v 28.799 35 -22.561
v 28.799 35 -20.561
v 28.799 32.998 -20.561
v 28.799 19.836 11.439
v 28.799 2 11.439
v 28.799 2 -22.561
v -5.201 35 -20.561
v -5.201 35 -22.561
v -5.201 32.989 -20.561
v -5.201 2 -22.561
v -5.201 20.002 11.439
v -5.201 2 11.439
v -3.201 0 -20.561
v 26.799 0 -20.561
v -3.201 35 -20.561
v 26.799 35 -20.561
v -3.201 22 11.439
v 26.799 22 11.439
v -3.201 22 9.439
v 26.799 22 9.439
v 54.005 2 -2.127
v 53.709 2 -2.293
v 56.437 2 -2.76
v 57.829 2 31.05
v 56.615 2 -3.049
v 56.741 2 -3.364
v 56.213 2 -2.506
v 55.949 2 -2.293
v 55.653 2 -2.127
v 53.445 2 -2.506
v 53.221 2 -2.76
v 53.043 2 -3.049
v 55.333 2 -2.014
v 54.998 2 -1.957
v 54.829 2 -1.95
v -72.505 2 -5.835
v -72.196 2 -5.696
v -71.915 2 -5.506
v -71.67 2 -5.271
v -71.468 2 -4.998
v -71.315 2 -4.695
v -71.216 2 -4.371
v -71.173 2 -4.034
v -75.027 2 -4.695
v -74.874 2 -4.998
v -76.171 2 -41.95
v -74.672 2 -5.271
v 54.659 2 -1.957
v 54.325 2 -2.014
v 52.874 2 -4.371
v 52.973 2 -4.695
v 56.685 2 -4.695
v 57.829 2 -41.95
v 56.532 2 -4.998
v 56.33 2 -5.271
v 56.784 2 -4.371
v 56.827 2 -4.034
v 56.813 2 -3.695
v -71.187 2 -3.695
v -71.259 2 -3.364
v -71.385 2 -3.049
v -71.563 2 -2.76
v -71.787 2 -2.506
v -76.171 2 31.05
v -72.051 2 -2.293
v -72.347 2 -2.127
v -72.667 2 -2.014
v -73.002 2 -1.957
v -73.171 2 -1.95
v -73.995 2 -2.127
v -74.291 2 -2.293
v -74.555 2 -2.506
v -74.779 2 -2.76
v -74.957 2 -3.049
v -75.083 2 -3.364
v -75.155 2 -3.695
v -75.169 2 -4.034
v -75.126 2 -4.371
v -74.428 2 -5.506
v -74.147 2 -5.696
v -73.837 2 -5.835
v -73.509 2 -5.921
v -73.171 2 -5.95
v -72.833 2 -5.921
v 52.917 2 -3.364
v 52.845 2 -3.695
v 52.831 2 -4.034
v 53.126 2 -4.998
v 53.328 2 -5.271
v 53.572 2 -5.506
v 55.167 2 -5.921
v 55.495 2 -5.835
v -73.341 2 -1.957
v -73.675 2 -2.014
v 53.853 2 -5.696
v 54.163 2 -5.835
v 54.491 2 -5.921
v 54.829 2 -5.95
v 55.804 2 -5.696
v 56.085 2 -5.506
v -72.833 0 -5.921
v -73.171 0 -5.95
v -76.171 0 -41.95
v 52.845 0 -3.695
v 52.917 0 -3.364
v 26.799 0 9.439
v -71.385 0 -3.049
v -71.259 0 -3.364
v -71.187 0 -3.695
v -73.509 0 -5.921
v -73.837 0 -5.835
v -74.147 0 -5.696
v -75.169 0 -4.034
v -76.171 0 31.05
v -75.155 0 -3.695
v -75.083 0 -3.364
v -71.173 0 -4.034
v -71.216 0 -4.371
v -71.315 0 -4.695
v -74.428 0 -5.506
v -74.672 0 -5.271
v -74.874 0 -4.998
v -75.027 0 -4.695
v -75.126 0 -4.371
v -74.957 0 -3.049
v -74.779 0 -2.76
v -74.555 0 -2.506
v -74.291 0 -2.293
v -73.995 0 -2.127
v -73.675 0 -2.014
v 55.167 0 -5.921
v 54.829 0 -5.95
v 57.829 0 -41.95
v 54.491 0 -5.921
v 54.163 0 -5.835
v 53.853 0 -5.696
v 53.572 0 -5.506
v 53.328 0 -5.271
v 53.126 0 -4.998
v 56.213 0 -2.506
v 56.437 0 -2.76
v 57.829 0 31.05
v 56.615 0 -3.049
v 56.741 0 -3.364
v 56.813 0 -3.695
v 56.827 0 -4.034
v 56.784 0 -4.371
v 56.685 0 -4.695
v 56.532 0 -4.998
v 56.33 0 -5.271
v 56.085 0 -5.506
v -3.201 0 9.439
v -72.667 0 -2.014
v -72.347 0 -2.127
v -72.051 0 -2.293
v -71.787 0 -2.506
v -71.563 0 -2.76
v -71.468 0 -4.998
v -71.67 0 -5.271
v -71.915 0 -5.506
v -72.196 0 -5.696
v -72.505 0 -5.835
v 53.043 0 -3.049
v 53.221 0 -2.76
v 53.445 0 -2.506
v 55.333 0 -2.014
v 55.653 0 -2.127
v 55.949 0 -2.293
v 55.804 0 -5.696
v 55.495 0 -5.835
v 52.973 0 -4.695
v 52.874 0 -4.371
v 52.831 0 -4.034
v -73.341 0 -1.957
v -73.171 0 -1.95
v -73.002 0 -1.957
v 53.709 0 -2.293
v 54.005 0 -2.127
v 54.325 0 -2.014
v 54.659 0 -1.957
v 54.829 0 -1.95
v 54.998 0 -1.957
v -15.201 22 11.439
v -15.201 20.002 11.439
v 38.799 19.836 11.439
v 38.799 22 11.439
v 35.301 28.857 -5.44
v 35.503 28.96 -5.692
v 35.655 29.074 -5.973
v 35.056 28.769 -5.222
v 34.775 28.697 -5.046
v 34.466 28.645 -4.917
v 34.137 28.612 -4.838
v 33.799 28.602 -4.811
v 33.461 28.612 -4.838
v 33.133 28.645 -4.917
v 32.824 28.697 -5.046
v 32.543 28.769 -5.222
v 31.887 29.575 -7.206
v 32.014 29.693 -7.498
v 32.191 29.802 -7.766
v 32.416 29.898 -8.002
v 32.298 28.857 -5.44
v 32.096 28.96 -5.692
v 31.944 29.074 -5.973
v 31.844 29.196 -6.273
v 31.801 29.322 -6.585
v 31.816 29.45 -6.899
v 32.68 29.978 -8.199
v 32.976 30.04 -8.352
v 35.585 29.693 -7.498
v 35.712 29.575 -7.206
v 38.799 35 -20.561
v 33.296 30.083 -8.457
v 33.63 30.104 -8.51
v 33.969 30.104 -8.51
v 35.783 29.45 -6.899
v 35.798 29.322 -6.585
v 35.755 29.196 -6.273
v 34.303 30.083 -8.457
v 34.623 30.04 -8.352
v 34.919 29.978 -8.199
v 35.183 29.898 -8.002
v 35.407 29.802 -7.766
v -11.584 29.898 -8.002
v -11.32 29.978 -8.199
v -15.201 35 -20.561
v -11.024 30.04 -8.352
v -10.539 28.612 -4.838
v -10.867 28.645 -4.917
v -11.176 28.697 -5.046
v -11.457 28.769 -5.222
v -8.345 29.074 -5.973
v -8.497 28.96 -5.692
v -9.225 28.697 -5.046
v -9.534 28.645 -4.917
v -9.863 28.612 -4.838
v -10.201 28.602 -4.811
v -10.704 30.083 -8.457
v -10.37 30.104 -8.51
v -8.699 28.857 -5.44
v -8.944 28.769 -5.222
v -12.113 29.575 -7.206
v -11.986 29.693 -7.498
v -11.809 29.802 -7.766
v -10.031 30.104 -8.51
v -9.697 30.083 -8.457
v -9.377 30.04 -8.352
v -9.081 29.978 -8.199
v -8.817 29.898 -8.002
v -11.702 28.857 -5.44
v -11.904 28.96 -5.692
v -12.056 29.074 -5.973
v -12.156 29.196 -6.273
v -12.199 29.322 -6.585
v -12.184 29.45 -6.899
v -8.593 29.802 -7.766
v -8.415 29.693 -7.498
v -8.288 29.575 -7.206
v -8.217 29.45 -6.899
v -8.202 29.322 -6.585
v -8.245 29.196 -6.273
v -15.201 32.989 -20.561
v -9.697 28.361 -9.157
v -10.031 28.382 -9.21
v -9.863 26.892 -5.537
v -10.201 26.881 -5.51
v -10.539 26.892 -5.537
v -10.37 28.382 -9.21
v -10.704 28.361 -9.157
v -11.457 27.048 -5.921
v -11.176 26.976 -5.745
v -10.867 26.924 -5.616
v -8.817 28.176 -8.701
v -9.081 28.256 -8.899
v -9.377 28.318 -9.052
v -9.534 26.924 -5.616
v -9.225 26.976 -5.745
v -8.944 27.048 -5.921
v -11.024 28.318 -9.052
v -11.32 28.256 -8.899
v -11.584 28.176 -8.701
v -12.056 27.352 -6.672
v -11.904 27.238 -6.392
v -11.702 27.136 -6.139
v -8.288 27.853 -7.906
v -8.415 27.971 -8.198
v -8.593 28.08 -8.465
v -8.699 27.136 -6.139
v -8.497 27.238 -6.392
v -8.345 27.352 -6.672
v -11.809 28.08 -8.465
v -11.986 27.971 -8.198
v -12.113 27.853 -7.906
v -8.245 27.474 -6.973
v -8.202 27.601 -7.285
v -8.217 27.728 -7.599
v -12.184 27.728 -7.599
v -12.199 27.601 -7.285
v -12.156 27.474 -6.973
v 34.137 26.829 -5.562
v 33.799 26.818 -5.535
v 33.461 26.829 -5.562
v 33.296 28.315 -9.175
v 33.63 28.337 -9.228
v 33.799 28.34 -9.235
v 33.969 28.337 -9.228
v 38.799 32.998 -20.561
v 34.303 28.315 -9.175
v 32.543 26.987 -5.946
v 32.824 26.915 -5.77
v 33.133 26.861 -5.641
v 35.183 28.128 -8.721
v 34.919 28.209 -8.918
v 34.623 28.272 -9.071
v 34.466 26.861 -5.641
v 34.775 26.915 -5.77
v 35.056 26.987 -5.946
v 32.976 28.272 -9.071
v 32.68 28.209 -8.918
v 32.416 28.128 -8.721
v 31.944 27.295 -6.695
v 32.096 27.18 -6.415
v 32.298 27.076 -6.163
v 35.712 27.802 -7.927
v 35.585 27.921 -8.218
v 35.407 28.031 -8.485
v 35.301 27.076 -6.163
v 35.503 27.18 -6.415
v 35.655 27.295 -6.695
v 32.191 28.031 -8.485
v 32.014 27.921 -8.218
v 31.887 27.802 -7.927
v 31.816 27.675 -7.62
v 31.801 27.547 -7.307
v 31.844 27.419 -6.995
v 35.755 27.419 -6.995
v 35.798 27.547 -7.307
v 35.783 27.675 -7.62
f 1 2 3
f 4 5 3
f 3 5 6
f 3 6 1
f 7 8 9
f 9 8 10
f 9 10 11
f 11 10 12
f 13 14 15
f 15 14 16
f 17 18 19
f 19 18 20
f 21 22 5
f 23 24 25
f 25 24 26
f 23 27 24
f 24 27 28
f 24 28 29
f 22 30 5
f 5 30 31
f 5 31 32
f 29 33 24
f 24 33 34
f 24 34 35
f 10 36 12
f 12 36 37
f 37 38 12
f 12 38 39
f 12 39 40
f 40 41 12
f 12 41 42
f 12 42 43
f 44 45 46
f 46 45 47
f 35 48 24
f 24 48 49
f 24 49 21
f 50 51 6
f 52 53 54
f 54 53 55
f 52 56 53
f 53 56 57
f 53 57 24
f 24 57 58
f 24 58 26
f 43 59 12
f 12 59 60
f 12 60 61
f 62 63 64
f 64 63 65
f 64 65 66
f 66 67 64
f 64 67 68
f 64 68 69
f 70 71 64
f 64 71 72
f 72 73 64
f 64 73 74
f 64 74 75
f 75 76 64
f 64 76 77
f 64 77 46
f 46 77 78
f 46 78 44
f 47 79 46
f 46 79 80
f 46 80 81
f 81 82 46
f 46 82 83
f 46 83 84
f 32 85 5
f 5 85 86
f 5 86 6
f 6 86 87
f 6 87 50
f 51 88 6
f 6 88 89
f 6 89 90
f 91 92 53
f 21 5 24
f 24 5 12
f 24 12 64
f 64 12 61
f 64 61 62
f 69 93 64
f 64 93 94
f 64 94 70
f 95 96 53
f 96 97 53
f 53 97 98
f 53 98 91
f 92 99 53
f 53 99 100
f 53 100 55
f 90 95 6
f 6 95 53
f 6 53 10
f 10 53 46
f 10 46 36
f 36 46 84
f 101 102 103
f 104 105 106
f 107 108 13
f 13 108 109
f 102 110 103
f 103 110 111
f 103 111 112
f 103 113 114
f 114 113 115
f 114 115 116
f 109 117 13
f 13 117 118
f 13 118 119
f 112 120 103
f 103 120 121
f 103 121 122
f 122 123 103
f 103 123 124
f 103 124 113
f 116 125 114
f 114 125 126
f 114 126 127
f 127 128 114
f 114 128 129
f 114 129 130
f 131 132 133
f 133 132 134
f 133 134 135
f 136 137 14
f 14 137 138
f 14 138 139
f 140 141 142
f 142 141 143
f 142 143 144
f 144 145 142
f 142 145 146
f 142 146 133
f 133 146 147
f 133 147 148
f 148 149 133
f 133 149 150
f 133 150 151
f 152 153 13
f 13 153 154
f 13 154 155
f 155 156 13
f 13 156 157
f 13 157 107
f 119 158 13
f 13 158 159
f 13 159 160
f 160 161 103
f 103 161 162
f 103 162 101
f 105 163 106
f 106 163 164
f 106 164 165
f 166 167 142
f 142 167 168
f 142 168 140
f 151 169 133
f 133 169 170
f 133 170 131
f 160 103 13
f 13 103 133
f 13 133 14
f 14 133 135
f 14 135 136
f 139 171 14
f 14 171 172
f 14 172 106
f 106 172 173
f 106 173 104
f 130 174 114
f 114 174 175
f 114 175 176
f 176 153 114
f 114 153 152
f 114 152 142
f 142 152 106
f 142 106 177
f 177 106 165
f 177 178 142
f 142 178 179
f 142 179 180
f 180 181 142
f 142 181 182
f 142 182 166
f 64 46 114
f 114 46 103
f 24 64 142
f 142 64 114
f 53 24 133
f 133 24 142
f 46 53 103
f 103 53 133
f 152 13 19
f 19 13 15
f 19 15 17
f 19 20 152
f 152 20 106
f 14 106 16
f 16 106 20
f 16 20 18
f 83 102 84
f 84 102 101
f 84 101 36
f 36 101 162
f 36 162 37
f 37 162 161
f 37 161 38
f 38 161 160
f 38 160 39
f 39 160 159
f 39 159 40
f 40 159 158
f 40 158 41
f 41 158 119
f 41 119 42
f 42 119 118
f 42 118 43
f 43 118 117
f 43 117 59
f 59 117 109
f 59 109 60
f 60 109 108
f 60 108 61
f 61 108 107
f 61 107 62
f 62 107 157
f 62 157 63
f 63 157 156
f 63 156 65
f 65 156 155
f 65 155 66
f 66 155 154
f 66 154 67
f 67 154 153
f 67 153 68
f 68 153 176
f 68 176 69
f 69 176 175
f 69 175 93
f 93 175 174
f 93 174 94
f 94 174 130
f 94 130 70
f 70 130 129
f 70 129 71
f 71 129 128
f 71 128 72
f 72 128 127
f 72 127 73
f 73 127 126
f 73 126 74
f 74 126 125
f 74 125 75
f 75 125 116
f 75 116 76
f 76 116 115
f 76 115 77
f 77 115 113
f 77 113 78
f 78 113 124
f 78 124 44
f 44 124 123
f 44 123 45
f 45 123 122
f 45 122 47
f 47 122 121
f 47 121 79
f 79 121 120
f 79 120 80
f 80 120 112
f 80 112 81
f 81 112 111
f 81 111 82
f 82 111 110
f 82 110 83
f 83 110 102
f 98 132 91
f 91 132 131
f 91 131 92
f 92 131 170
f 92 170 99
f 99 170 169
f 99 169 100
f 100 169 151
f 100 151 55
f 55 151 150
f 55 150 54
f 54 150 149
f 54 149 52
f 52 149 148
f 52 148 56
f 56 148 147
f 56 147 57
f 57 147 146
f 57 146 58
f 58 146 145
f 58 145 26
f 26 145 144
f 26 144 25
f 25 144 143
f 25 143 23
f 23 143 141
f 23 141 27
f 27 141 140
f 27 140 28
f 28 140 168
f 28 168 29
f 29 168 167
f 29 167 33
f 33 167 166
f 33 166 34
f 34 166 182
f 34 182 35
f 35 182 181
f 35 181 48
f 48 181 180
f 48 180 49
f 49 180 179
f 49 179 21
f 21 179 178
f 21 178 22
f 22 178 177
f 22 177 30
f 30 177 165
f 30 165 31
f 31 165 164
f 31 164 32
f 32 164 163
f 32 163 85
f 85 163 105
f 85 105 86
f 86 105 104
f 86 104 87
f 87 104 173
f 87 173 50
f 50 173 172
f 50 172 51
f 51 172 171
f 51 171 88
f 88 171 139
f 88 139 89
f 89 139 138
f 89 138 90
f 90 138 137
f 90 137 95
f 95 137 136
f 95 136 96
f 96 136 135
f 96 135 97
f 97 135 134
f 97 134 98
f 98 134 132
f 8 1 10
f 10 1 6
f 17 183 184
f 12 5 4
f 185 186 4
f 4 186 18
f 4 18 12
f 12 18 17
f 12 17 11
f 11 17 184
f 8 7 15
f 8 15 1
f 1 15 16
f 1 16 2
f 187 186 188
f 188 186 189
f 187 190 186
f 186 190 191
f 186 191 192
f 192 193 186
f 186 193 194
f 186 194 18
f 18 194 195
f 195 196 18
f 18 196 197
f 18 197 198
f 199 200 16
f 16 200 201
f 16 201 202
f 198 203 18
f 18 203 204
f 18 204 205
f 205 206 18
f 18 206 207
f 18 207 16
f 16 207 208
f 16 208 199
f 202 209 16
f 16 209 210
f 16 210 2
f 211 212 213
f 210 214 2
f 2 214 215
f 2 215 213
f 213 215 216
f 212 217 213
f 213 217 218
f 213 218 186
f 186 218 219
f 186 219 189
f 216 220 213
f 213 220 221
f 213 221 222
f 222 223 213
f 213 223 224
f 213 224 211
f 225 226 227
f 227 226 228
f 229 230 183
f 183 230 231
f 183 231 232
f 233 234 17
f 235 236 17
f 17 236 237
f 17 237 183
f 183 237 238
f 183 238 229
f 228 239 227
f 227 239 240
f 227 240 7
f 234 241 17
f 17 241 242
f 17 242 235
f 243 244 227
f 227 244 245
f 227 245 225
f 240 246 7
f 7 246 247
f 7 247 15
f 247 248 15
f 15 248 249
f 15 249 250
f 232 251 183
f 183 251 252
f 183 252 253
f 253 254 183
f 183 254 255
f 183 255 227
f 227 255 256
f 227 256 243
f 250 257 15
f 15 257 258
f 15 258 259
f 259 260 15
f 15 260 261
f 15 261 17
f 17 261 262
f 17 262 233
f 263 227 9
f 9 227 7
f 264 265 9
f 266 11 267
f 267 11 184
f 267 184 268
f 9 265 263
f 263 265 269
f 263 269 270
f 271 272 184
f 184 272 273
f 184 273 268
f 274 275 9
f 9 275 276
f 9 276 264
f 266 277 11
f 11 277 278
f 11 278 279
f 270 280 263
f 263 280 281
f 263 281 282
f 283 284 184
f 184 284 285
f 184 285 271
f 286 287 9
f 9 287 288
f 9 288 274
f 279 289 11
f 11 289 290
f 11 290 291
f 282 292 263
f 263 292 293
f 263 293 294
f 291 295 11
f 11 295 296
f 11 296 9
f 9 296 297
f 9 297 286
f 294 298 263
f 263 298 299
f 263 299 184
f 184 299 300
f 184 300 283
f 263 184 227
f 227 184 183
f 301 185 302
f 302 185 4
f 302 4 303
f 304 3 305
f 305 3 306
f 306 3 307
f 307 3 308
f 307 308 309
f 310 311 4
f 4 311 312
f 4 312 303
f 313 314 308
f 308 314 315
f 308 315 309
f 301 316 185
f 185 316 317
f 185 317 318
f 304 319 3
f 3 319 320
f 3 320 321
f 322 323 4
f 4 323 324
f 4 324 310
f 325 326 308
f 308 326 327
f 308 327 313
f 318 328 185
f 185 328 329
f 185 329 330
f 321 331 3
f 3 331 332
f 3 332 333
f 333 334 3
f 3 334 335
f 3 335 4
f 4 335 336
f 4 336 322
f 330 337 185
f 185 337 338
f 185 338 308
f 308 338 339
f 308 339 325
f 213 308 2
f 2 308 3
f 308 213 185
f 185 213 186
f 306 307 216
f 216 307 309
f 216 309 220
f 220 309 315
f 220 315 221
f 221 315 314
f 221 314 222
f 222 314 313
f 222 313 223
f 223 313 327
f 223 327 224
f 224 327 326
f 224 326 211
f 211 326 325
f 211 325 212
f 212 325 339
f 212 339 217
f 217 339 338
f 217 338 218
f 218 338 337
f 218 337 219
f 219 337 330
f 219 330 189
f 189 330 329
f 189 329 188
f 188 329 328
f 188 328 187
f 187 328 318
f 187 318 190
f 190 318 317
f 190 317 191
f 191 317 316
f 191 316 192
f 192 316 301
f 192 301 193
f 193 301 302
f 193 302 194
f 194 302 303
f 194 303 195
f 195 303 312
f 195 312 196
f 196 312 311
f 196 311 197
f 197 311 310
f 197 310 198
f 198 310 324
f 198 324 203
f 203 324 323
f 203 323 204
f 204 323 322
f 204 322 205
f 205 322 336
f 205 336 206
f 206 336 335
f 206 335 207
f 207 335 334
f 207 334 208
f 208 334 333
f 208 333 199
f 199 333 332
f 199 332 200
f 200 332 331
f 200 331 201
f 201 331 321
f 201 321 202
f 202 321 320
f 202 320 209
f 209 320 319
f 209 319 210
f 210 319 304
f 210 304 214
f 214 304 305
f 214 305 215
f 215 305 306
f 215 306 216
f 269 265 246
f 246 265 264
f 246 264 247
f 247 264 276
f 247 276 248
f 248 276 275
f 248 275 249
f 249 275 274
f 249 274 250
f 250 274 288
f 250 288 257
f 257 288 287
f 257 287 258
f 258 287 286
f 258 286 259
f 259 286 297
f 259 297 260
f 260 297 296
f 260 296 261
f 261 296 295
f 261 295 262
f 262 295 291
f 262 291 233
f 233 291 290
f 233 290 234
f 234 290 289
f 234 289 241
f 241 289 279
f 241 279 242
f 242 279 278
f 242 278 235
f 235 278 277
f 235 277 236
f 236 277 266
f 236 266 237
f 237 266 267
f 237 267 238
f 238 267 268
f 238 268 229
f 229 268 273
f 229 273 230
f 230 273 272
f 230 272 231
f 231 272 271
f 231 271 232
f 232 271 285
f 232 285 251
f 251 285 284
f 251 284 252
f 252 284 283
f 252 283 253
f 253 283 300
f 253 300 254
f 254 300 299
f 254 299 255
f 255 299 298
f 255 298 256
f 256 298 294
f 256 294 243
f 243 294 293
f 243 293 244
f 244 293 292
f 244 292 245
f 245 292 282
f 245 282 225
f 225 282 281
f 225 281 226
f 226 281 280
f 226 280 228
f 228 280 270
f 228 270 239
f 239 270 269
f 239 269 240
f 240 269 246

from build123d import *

# Parameters (mm, degrees)
SKETCH_1_W          = 134
SKETCH_1_H          = 73
SKETCH_1_R          = 2
SKETCH_1_W_2        = 30
SKETCH_1_H_2        = 30
EXTRUDE_1_DEPTH     = 2
SKETCH_2_W          = 34
SKETCH_2_H          = 34
SKETCH_2_W_2        = 30
SKETCH_2_H_2        = 30
EXTRUDE_2_DEPTH     = 20
SKETCH_3_W          = 34
SKETCH_3_H          = 2
EXTRUDE_4_DEPTH     = 13
EXTRUDE_5_DEPTH     = 2
EXTRUDE_6_DEPTH     = 2
EXTRUDE_8_DEPTH     = 10
EXTRUDE_9_DEPTH     = 10
SKETCH_9_R          = 2
CUT_EXTRUDE_1_DEPTH = 2


with BuildPart() as part:
    # 草图1 → 凸台-拉伸1 (new body)
    with BuildSketch(Plane(origin=(0, 0, 0), x_dir=(1, 0, 0), z_dir=(0, 1, 0))):
        with Locations((-9.171149658, 5.449528879)):
            Rectangle(SKETCH_1_W, SKETCH_1_H)
        with Locations(Location((-73.171149658, 3.949528879, 0), (0, 0, 270))):
            Circle(SKETCH_1_R, mode=Mode.SUBTRACT)
        with Locations(Location((54.828850342, 3.949528879, 0), (0, 0, 270))):
            Circle(SKETCH_1_R, mode=Mode.SUBTRACT)
        with Locations((11.799460463, 5.560834735)):
            Rectangle(SKETCH_1_W_2, SKETCH_1_H_2, mode=Mode.SUBTRACT)
    extrude(amount=EXTRUDE_1_DEPTH)

    # 草图2 → 凸台-拉伸2 (add)
    with BuildSketch(Plane(origin=(0, 2, 0), x_dir=(1, 0, 0), z_dir=(0, 1, 0))):
        with Locations((11.799460463, 5.560834735)):
            Rectangle(SKETCH_2_W, SKETCH_2_H)
        with Locations((11.799460463, 5.560834735)):
            Rectangle(SKETCH_2_W_2, SKETCH_2_H_2, mode=Mode.SUBTRACT)
    extrude(amount=EXTRUDE_2_DEPTH)

    # 草图3 → 凸台-拉伸4 (add)
    with BuildSketch(Plane(origin=(0, 22, 0), x_dir=(1, 0, 0), z_dir=(0, 1, 0))):
        with Locations((11.799460463, 21.560834735)):
            Rectangle(SKETCH_3_W, SKETCH_3_H)
    extrude(amount=EXTRUDE_4_DEPTH)

    # 草图5 → 凸台-拉伸5 (add)
    with BuildSketch(Plane(origin=(28.799460463, 0, 0), x_dir=(0, 0, -1), z_dir=(1, 0, 0))):
        Polygon((-11.439165265, 22), (20.560834735, 22), (20.560834735, 35), align=None)
    extrude(amount=-EXTRUDE_5_DEPTH)

    # 草图6 → 凸台-拉伸6 (add)
    with BuildSketch(Plane.ZY.offset(5.200539537)):
        Polygon((-20.560834735, 35), (-20.560834735, 22), (11.439165265, 22), align=None)
    extrude(amount=-EXTRUDE_6_DEPTH)

    # 草图8 → 凸台-拉伸8 (add)
    with BuildSketch(Plane.ZY.offset(5.200539537)):
        Polygon((11.439165265, 22), (11.439165265, 20.001570324), (-20.560834735, 32.989316021), (-20.560834735, 35), align=None)
    extrude(amount=EXTRUDE_8_DEPTH)

    # 草图7 → 凸台-拉伸9 (add)
    with BuildSketch(Plane(origin=(28.799460463, 0, 0), x_dir=(0, 0, -1), z_dir=(1, 0, 0))):
        Polygon((-11.439165265, 22), (20.560834735, 35), (20.560834735, 32.997882157), (-11.439165265, 19.836435038), align=None)
    extrude(amount=EXTRUDE_9_DEPTH)

    # 草图9 → 切除-拉伸1 (cut)
    with BuildSketch(Plane(origin=(0, 22.872332565, 9.291885105), x_dir=(1, 0, 0), z_dir=(0, 0.9264665771223091, 0.3763770469559383))):
        with Locations(Location((-10.200539537, 17.222122823, 0), (0, 0, 270))):
            Circle(SKETCH_9_R)
        with Locations(Location((33.799460463, 17.222122823, 0), (0, 0, 270))):
            Circle(SKETCH_9_R)
    extrude(amount=-CUT_EXTRUDE_1_DEPTH, mode=Mode.SUBTRACT)


solid = part.part
